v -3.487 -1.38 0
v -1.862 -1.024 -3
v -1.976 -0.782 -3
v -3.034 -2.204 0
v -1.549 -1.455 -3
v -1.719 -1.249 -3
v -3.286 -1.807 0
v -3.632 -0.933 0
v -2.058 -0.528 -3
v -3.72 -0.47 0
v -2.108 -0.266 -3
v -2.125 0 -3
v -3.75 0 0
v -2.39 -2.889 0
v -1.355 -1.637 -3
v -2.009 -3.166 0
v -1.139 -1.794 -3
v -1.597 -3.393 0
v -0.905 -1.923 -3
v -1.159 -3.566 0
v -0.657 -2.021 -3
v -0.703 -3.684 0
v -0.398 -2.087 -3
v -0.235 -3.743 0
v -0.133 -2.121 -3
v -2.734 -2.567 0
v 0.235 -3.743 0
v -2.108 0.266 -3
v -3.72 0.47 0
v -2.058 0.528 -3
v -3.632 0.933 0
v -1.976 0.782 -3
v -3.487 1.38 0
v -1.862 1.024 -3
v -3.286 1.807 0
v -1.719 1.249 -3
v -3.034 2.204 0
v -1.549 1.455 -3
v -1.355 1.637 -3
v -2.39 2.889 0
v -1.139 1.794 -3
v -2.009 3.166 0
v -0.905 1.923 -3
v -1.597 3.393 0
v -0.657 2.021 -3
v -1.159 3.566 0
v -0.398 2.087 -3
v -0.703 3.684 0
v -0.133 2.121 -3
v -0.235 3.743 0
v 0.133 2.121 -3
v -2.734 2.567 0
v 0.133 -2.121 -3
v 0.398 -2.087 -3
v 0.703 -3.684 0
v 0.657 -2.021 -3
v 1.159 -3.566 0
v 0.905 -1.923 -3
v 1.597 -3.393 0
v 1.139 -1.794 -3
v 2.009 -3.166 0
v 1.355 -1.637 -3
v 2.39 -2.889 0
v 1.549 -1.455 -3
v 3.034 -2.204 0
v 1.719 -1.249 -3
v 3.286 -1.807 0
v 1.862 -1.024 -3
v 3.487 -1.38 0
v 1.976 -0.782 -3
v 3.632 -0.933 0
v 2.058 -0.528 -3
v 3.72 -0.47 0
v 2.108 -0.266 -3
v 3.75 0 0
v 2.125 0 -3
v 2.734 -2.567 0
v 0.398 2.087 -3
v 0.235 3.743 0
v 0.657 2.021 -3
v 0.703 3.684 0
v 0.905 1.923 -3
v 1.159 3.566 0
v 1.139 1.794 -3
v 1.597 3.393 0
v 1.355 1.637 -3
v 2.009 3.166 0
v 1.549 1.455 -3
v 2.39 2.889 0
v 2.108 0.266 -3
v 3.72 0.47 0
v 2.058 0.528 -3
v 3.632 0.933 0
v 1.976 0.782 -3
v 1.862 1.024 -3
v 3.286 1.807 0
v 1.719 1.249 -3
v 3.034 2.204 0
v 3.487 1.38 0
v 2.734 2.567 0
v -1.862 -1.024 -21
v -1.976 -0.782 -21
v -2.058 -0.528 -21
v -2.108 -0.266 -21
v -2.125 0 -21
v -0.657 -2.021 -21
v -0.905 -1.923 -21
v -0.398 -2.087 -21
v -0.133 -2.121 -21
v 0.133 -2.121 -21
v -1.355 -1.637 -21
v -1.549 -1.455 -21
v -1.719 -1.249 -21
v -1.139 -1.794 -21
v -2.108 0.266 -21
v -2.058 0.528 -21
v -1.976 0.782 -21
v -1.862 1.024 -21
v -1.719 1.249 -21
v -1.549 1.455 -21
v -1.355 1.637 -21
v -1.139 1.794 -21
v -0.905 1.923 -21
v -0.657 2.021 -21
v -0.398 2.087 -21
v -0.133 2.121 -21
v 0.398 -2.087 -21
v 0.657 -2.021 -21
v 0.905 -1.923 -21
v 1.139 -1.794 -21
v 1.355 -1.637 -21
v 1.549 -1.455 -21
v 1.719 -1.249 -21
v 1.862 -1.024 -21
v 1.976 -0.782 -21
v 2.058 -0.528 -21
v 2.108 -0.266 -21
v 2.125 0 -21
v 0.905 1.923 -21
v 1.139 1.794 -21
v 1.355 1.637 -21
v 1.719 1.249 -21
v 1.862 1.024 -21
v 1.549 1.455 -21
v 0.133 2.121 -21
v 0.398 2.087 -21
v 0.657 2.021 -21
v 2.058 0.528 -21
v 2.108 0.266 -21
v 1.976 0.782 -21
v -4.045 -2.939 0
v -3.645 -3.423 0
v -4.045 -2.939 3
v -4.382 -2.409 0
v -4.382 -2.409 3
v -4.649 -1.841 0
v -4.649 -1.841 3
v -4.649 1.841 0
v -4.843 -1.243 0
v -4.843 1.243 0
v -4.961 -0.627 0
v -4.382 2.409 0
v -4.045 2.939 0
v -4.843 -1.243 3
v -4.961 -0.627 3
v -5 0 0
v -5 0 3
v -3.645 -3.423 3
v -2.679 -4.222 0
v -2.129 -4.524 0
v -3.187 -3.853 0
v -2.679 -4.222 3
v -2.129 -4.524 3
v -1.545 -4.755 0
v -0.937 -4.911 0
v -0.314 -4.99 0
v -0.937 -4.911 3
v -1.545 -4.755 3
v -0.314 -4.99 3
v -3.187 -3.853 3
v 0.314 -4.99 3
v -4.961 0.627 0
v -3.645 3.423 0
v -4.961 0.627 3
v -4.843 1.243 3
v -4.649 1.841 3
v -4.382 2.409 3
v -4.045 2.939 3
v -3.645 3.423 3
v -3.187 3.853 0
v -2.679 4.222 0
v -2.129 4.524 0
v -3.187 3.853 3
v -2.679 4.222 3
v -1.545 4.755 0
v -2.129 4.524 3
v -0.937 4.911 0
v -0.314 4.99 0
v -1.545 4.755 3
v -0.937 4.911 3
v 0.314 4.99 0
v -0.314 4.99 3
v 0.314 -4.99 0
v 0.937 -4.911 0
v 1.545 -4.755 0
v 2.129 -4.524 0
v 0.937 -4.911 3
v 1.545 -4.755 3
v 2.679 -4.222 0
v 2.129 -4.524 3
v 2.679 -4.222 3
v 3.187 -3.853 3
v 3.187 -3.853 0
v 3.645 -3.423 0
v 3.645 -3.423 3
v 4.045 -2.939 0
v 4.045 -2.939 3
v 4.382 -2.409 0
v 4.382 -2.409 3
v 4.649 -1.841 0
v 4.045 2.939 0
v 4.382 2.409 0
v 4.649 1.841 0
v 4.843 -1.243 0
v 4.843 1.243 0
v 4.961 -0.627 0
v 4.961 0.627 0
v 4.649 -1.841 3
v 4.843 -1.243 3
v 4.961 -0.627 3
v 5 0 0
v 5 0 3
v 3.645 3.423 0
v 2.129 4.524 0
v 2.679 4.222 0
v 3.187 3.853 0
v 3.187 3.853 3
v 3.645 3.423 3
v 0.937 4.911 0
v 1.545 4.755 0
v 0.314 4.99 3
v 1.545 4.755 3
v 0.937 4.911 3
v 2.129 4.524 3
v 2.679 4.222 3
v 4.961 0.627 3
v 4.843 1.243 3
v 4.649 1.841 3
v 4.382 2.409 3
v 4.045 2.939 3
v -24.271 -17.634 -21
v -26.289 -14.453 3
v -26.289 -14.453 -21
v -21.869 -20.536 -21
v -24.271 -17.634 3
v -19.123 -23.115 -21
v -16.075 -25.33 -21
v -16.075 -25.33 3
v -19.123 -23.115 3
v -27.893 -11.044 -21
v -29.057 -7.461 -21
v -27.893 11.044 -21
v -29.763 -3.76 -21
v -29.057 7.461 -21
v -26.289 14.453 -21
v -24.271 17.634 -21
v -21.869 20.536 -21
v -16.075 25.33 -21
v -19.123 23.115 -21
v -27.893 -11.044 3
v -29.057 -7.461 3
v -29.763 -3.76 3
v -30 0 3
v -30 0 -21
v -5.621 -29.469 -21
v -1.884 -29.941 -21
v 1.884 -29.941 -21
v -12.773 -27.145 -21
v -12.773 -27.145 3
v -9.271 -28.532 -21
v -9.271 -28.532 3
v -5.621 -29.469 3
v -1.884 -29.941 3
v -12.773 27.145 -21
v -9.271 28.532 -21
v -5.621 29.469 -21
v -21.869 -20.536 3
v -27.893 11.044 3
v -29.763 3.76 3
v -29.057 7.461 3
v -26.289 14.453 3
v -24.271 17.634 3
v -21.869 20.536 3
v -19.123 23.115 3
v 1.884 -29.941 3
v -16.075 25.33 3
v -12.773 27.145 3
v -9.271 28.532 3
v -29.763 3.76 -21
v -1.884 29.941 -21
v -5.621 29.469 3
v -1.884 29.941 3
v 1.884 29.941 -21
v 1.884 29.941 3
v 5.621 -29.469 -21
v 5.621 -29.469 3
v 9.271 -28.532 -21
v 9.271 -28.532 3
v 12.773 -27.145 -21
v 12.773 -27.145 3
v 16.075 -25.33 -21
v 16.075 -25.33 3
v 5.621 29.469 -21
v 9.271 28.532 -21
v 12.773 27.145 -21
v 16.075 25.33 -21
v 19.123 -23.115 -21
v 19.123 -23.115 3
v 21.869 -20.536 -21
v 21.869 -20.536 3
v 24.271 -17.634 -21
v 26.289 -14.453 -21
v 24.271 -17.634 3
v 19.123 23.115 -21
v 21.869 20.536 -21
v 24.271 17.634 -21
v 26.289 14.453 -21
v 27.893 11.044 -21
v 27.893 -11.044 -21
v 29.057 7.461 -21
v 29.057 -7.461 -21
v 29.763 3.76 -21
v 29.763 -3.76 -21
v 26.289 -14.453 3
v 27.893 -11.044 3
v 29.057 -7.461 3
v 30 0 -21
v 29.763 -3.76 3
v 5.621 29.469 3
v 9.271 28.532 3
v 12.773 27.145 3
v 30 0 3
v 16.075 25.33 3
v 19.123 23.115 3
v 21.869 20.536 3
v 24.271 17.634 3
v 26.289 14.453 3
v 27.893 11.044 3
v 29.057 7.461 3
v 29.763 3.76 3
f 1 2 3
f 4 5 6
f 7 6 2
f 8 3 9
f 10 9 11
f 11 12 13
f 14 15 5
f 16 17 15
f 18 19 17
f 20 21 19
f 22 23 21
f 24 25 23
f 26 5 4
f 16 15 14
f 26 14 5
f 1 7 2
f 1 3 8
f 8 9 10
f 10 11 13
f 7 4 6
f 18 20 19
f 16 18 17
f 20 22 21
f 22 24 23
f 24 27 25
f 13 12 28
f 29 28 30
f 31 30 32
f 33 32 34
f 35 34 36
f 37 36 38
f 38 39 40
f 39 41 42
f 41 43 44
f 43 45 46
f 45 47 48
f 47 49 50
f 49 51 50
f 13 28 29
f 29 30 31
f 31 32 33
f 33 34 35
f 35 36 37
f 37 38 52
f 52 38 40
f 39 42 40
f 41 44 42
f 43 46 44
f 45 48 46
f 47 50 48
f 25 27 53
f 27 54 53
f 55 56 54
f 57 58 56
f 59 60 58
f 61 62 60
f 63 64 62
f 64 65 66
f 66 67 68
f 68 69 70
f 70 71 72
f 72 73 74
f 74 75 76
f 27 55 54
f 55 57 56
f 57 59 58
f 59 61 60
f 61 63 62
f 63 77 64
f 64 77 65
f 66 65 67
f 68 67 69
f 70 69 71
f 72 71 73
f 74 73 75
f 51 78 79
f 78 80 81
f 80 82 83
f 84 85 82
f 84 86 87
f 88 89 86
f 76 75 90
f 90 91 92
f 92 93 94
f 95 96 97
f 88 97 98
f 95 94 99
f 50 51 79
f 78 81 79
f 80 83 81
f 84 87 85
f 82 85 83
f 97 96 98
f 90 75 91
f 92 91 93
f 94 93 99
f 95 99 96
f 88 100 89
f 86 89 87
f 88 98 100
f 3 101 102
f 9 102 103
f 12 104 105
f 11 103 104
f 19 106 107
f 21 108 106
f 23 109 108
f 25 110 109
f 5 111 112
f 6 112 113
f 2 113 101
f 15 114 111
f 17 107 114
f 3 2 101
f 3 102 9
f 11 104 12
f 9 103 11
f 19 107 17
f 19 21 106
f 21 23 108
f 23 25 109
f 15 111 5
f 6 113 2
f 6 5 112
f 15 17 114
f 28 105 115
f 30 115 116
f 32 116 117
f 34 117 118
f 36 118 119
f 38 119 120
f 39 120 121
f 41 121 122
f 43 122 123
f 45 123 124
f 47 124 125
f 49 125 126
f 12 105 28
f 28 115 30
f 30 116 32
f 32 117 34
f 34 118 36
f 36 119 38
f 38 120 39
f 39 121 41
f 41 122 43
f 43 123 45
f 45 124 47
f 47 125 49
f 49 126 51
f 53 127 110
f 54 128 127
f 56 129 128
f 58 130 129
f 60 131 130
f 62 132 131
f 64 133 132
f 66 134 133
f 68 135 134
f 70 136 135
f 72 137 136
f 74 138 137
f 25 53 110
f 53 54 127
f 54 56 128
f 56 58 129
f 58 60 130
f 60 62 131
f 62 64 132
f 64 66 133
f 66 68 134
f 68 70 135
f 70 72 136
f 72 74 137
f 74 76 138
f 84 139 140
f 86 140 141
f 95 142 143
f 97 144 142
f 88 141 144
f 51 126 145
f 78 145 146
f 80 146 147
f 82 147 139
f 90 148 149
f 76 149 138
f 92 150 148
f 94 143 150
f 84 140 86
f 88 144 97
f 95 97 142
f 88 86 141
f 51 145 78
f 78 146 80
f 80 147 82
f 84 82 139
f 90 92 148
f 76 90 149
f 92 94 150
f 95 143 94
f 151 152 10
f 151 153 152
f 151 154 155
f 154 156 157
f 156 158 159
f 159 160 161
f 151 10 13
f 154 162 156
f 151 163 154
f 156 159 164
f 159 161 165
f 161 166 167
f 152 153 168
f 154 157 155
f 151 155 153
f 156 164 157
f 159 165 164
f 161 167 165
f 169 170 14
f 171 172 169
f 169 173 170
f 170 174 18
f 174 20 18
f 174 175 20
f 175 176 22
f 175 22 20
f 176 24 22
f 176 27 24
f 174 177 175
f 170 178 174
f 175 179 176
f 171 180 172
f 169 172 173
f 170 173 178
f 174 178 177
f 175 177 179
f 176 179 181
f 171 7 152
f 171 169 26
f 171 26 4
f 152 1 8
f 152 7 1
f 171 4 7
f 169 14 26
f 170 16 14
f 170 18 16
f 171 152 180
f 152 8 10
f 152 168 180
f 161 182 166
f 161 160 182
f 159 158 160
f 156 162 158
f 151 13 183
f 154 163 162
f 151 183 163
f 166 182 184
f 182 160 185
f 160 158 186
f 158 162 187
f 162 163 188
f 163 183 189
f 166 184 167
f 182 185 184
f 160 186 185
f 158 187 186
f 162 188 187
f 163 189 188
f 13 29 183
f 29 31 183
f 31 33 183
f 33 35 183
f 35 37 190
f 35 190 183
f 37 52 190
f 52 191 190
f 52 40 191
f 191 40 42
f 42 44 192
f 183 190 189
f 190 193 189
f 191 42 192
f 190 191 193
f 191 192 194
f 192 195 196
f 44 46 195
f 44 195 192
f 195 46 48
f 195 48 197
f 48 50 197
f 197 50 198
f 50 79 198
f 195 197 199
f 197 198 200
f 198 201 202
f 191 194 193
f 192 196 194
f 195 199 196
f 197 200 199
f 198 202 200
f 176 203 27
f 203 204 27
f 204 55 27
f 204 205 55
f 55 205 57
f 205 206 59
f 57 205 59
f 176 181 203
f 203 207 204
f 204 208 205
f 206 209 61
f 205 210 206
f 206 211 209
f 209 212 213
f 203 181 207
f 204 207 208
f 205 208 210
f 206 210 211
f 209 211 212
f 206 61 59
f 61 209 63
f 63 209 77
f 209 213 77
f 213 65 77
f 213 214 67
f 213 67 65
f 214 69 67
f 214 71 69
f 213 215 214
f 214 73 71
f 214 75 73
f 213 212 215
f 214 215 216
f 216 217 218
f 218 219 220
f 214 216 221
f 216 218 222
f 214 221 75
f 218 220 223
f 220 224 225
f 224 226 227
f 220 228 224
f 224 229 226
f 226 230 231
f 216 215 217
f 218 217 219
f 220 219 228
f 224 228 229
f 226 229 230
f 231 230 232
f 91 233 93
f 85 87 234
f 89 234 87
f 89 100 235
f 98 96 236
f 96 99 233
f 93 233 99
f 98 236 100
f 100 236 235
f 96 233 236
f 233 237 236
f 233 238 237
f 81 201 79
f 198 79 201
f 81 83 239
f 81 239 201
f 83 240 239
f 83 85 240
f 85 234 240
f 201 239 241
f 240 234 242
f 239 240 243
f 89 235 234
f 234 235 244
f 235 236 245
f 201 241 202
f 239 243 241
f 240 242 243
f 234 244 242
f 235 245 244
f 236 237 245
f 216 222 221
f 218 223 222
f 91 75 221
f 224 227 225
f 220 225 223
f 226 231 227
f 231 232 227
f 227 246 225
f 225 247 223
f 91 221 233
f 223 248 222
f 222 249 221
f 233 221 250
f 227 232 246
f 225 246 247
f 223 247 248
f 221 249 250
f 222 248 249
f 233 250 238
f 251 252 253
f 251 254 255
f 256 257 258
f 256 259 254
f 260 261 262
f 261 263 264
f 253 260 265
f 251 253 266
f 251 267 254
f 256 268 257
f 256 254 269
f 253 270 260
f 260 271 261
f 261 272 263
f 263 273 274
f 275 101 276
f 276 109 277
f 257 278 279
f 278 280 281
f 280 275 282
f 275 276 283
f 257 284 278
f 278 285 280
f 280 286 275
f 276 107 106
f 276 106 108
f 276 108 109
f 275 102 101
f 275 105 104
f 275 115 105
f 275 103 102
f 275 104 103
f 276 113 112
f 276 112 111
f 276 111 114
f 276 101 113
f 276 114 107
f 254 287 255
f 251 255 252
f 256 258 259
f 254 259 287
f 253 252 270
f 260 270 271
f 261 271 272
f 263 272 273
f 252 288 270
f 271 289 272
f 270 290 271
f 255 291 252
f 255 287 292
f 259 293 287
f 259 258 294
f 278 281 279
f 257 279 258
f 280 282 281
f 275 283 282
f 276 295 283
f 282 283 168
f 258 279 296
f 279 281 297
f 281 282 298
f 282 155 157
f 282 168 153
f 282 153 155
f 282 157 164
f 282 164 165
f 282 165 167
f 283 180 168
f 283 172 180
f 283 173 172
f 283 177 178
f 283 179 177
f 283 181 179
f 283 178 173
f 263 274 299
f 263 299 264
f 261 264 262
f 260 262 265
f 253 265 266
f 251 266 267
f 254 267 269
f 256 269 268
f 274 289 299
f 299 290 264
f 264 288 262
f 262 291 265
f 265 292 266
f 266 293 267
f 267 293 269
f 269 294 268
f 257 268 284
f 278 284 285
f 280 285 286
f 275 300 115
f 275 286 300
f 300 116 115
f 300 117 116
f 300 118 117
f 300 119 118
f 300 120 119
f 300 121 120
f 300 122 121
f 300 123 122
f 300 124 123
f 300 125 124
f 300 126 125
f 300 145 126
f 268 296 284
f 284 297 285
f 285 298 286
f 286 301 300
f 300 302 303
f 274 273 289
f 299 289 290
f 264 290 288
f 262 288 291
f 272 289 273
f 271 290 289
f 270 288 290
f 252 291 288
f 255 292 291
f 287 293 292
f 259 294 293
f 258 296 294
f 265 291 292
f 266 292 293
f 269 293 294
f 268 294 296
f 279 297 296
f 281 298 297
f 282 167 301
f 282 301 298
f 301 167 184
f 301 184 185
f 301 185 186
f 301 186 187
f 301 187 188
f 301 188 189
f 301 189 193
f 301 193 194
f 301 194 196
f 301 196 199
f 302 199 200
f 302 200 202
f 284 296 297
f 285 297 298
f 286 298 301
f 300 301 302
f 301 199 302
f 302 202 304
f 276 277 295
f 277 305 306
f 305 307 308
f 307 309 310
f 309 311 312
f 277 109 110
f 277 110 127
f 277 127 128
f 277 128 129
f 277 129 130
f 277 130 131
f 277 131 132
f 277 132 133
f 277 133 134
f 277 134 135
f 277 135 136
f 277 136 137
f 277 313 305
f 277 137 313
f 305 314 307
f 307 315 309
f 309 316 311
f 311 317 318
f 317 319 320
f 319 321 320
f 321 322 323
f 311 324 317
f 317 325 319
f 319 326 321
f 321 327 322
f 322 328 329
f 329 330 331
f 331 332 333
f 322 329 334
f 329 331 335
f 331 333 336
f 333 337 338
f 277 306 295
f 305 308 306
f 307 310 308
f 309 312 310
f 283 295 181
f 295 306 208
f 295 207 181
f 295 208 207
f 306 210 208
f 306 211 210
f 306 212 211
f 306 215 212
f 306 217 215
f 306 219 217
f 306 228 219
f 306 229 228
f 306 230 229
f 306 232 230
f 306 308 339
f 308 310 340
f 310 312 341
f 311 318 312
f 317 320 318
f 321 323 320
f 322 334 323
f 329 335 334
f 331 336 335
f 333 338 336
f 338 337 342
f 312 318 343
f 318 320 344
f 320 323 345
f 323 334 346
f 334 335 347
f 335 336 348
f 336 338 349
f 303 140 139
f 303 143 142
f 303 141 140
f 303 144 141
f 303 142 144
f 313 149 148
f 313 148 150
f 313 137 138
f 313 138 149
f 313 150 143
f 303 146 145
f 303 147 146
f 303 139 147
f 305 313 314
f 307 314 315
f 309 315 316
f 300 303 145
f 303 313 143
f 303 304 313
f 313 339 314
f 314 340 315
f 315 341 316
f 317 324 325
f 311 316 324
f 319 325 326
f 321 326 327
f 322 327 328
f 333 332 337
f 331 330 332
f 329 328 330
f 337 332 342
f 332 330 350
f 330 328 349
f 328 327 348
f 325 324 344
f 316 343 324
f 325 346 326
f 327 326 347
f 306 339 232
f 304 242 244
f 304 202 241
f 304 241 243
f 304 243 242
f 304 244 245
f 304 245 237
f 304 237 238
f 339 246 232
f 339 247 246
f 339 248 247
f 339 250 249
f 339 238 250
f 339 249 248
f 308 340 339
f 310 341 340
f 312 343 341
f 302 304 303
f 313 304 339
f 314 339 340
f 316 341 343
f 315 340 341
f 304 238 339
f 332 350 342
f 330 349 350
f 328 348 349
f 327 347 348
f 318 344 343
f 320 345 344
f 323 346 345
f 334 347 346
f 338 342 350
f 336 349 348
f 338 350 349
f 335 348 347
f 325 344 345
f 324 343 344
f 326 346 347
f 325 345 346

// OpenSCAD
$fn = 50;

difference() {
	union() {
		translate(v = [0, 0, -21.0]) {
			cylinder(h = 24, r = 30.0);
		}
	}
	union() {
		translate(v = [0, 0, 0]) {
			rotate(a = [0, 0, 0]) {
				difference() {
					union() {
						translate(v = [0, 0, -24.0]) {
							cylinder(h = 24, r = 2.0);
						}
						translate(v = [0, 0, -3]) {
							cylinder(h = 3, r1 = 2.125, r2 = 3.75);
						}
						translate(v = [0, 0, -24.0]) {
							cylinder(h = 24, r = 2.125);
						}
						translate(v = [0, 0, -24.0]) {
							cylinder(h = 24, r = 2.0);
						}
					}
					union();
				}
			}
		}
		#cylinder(h = 3, r = 5.0);
	}
}
